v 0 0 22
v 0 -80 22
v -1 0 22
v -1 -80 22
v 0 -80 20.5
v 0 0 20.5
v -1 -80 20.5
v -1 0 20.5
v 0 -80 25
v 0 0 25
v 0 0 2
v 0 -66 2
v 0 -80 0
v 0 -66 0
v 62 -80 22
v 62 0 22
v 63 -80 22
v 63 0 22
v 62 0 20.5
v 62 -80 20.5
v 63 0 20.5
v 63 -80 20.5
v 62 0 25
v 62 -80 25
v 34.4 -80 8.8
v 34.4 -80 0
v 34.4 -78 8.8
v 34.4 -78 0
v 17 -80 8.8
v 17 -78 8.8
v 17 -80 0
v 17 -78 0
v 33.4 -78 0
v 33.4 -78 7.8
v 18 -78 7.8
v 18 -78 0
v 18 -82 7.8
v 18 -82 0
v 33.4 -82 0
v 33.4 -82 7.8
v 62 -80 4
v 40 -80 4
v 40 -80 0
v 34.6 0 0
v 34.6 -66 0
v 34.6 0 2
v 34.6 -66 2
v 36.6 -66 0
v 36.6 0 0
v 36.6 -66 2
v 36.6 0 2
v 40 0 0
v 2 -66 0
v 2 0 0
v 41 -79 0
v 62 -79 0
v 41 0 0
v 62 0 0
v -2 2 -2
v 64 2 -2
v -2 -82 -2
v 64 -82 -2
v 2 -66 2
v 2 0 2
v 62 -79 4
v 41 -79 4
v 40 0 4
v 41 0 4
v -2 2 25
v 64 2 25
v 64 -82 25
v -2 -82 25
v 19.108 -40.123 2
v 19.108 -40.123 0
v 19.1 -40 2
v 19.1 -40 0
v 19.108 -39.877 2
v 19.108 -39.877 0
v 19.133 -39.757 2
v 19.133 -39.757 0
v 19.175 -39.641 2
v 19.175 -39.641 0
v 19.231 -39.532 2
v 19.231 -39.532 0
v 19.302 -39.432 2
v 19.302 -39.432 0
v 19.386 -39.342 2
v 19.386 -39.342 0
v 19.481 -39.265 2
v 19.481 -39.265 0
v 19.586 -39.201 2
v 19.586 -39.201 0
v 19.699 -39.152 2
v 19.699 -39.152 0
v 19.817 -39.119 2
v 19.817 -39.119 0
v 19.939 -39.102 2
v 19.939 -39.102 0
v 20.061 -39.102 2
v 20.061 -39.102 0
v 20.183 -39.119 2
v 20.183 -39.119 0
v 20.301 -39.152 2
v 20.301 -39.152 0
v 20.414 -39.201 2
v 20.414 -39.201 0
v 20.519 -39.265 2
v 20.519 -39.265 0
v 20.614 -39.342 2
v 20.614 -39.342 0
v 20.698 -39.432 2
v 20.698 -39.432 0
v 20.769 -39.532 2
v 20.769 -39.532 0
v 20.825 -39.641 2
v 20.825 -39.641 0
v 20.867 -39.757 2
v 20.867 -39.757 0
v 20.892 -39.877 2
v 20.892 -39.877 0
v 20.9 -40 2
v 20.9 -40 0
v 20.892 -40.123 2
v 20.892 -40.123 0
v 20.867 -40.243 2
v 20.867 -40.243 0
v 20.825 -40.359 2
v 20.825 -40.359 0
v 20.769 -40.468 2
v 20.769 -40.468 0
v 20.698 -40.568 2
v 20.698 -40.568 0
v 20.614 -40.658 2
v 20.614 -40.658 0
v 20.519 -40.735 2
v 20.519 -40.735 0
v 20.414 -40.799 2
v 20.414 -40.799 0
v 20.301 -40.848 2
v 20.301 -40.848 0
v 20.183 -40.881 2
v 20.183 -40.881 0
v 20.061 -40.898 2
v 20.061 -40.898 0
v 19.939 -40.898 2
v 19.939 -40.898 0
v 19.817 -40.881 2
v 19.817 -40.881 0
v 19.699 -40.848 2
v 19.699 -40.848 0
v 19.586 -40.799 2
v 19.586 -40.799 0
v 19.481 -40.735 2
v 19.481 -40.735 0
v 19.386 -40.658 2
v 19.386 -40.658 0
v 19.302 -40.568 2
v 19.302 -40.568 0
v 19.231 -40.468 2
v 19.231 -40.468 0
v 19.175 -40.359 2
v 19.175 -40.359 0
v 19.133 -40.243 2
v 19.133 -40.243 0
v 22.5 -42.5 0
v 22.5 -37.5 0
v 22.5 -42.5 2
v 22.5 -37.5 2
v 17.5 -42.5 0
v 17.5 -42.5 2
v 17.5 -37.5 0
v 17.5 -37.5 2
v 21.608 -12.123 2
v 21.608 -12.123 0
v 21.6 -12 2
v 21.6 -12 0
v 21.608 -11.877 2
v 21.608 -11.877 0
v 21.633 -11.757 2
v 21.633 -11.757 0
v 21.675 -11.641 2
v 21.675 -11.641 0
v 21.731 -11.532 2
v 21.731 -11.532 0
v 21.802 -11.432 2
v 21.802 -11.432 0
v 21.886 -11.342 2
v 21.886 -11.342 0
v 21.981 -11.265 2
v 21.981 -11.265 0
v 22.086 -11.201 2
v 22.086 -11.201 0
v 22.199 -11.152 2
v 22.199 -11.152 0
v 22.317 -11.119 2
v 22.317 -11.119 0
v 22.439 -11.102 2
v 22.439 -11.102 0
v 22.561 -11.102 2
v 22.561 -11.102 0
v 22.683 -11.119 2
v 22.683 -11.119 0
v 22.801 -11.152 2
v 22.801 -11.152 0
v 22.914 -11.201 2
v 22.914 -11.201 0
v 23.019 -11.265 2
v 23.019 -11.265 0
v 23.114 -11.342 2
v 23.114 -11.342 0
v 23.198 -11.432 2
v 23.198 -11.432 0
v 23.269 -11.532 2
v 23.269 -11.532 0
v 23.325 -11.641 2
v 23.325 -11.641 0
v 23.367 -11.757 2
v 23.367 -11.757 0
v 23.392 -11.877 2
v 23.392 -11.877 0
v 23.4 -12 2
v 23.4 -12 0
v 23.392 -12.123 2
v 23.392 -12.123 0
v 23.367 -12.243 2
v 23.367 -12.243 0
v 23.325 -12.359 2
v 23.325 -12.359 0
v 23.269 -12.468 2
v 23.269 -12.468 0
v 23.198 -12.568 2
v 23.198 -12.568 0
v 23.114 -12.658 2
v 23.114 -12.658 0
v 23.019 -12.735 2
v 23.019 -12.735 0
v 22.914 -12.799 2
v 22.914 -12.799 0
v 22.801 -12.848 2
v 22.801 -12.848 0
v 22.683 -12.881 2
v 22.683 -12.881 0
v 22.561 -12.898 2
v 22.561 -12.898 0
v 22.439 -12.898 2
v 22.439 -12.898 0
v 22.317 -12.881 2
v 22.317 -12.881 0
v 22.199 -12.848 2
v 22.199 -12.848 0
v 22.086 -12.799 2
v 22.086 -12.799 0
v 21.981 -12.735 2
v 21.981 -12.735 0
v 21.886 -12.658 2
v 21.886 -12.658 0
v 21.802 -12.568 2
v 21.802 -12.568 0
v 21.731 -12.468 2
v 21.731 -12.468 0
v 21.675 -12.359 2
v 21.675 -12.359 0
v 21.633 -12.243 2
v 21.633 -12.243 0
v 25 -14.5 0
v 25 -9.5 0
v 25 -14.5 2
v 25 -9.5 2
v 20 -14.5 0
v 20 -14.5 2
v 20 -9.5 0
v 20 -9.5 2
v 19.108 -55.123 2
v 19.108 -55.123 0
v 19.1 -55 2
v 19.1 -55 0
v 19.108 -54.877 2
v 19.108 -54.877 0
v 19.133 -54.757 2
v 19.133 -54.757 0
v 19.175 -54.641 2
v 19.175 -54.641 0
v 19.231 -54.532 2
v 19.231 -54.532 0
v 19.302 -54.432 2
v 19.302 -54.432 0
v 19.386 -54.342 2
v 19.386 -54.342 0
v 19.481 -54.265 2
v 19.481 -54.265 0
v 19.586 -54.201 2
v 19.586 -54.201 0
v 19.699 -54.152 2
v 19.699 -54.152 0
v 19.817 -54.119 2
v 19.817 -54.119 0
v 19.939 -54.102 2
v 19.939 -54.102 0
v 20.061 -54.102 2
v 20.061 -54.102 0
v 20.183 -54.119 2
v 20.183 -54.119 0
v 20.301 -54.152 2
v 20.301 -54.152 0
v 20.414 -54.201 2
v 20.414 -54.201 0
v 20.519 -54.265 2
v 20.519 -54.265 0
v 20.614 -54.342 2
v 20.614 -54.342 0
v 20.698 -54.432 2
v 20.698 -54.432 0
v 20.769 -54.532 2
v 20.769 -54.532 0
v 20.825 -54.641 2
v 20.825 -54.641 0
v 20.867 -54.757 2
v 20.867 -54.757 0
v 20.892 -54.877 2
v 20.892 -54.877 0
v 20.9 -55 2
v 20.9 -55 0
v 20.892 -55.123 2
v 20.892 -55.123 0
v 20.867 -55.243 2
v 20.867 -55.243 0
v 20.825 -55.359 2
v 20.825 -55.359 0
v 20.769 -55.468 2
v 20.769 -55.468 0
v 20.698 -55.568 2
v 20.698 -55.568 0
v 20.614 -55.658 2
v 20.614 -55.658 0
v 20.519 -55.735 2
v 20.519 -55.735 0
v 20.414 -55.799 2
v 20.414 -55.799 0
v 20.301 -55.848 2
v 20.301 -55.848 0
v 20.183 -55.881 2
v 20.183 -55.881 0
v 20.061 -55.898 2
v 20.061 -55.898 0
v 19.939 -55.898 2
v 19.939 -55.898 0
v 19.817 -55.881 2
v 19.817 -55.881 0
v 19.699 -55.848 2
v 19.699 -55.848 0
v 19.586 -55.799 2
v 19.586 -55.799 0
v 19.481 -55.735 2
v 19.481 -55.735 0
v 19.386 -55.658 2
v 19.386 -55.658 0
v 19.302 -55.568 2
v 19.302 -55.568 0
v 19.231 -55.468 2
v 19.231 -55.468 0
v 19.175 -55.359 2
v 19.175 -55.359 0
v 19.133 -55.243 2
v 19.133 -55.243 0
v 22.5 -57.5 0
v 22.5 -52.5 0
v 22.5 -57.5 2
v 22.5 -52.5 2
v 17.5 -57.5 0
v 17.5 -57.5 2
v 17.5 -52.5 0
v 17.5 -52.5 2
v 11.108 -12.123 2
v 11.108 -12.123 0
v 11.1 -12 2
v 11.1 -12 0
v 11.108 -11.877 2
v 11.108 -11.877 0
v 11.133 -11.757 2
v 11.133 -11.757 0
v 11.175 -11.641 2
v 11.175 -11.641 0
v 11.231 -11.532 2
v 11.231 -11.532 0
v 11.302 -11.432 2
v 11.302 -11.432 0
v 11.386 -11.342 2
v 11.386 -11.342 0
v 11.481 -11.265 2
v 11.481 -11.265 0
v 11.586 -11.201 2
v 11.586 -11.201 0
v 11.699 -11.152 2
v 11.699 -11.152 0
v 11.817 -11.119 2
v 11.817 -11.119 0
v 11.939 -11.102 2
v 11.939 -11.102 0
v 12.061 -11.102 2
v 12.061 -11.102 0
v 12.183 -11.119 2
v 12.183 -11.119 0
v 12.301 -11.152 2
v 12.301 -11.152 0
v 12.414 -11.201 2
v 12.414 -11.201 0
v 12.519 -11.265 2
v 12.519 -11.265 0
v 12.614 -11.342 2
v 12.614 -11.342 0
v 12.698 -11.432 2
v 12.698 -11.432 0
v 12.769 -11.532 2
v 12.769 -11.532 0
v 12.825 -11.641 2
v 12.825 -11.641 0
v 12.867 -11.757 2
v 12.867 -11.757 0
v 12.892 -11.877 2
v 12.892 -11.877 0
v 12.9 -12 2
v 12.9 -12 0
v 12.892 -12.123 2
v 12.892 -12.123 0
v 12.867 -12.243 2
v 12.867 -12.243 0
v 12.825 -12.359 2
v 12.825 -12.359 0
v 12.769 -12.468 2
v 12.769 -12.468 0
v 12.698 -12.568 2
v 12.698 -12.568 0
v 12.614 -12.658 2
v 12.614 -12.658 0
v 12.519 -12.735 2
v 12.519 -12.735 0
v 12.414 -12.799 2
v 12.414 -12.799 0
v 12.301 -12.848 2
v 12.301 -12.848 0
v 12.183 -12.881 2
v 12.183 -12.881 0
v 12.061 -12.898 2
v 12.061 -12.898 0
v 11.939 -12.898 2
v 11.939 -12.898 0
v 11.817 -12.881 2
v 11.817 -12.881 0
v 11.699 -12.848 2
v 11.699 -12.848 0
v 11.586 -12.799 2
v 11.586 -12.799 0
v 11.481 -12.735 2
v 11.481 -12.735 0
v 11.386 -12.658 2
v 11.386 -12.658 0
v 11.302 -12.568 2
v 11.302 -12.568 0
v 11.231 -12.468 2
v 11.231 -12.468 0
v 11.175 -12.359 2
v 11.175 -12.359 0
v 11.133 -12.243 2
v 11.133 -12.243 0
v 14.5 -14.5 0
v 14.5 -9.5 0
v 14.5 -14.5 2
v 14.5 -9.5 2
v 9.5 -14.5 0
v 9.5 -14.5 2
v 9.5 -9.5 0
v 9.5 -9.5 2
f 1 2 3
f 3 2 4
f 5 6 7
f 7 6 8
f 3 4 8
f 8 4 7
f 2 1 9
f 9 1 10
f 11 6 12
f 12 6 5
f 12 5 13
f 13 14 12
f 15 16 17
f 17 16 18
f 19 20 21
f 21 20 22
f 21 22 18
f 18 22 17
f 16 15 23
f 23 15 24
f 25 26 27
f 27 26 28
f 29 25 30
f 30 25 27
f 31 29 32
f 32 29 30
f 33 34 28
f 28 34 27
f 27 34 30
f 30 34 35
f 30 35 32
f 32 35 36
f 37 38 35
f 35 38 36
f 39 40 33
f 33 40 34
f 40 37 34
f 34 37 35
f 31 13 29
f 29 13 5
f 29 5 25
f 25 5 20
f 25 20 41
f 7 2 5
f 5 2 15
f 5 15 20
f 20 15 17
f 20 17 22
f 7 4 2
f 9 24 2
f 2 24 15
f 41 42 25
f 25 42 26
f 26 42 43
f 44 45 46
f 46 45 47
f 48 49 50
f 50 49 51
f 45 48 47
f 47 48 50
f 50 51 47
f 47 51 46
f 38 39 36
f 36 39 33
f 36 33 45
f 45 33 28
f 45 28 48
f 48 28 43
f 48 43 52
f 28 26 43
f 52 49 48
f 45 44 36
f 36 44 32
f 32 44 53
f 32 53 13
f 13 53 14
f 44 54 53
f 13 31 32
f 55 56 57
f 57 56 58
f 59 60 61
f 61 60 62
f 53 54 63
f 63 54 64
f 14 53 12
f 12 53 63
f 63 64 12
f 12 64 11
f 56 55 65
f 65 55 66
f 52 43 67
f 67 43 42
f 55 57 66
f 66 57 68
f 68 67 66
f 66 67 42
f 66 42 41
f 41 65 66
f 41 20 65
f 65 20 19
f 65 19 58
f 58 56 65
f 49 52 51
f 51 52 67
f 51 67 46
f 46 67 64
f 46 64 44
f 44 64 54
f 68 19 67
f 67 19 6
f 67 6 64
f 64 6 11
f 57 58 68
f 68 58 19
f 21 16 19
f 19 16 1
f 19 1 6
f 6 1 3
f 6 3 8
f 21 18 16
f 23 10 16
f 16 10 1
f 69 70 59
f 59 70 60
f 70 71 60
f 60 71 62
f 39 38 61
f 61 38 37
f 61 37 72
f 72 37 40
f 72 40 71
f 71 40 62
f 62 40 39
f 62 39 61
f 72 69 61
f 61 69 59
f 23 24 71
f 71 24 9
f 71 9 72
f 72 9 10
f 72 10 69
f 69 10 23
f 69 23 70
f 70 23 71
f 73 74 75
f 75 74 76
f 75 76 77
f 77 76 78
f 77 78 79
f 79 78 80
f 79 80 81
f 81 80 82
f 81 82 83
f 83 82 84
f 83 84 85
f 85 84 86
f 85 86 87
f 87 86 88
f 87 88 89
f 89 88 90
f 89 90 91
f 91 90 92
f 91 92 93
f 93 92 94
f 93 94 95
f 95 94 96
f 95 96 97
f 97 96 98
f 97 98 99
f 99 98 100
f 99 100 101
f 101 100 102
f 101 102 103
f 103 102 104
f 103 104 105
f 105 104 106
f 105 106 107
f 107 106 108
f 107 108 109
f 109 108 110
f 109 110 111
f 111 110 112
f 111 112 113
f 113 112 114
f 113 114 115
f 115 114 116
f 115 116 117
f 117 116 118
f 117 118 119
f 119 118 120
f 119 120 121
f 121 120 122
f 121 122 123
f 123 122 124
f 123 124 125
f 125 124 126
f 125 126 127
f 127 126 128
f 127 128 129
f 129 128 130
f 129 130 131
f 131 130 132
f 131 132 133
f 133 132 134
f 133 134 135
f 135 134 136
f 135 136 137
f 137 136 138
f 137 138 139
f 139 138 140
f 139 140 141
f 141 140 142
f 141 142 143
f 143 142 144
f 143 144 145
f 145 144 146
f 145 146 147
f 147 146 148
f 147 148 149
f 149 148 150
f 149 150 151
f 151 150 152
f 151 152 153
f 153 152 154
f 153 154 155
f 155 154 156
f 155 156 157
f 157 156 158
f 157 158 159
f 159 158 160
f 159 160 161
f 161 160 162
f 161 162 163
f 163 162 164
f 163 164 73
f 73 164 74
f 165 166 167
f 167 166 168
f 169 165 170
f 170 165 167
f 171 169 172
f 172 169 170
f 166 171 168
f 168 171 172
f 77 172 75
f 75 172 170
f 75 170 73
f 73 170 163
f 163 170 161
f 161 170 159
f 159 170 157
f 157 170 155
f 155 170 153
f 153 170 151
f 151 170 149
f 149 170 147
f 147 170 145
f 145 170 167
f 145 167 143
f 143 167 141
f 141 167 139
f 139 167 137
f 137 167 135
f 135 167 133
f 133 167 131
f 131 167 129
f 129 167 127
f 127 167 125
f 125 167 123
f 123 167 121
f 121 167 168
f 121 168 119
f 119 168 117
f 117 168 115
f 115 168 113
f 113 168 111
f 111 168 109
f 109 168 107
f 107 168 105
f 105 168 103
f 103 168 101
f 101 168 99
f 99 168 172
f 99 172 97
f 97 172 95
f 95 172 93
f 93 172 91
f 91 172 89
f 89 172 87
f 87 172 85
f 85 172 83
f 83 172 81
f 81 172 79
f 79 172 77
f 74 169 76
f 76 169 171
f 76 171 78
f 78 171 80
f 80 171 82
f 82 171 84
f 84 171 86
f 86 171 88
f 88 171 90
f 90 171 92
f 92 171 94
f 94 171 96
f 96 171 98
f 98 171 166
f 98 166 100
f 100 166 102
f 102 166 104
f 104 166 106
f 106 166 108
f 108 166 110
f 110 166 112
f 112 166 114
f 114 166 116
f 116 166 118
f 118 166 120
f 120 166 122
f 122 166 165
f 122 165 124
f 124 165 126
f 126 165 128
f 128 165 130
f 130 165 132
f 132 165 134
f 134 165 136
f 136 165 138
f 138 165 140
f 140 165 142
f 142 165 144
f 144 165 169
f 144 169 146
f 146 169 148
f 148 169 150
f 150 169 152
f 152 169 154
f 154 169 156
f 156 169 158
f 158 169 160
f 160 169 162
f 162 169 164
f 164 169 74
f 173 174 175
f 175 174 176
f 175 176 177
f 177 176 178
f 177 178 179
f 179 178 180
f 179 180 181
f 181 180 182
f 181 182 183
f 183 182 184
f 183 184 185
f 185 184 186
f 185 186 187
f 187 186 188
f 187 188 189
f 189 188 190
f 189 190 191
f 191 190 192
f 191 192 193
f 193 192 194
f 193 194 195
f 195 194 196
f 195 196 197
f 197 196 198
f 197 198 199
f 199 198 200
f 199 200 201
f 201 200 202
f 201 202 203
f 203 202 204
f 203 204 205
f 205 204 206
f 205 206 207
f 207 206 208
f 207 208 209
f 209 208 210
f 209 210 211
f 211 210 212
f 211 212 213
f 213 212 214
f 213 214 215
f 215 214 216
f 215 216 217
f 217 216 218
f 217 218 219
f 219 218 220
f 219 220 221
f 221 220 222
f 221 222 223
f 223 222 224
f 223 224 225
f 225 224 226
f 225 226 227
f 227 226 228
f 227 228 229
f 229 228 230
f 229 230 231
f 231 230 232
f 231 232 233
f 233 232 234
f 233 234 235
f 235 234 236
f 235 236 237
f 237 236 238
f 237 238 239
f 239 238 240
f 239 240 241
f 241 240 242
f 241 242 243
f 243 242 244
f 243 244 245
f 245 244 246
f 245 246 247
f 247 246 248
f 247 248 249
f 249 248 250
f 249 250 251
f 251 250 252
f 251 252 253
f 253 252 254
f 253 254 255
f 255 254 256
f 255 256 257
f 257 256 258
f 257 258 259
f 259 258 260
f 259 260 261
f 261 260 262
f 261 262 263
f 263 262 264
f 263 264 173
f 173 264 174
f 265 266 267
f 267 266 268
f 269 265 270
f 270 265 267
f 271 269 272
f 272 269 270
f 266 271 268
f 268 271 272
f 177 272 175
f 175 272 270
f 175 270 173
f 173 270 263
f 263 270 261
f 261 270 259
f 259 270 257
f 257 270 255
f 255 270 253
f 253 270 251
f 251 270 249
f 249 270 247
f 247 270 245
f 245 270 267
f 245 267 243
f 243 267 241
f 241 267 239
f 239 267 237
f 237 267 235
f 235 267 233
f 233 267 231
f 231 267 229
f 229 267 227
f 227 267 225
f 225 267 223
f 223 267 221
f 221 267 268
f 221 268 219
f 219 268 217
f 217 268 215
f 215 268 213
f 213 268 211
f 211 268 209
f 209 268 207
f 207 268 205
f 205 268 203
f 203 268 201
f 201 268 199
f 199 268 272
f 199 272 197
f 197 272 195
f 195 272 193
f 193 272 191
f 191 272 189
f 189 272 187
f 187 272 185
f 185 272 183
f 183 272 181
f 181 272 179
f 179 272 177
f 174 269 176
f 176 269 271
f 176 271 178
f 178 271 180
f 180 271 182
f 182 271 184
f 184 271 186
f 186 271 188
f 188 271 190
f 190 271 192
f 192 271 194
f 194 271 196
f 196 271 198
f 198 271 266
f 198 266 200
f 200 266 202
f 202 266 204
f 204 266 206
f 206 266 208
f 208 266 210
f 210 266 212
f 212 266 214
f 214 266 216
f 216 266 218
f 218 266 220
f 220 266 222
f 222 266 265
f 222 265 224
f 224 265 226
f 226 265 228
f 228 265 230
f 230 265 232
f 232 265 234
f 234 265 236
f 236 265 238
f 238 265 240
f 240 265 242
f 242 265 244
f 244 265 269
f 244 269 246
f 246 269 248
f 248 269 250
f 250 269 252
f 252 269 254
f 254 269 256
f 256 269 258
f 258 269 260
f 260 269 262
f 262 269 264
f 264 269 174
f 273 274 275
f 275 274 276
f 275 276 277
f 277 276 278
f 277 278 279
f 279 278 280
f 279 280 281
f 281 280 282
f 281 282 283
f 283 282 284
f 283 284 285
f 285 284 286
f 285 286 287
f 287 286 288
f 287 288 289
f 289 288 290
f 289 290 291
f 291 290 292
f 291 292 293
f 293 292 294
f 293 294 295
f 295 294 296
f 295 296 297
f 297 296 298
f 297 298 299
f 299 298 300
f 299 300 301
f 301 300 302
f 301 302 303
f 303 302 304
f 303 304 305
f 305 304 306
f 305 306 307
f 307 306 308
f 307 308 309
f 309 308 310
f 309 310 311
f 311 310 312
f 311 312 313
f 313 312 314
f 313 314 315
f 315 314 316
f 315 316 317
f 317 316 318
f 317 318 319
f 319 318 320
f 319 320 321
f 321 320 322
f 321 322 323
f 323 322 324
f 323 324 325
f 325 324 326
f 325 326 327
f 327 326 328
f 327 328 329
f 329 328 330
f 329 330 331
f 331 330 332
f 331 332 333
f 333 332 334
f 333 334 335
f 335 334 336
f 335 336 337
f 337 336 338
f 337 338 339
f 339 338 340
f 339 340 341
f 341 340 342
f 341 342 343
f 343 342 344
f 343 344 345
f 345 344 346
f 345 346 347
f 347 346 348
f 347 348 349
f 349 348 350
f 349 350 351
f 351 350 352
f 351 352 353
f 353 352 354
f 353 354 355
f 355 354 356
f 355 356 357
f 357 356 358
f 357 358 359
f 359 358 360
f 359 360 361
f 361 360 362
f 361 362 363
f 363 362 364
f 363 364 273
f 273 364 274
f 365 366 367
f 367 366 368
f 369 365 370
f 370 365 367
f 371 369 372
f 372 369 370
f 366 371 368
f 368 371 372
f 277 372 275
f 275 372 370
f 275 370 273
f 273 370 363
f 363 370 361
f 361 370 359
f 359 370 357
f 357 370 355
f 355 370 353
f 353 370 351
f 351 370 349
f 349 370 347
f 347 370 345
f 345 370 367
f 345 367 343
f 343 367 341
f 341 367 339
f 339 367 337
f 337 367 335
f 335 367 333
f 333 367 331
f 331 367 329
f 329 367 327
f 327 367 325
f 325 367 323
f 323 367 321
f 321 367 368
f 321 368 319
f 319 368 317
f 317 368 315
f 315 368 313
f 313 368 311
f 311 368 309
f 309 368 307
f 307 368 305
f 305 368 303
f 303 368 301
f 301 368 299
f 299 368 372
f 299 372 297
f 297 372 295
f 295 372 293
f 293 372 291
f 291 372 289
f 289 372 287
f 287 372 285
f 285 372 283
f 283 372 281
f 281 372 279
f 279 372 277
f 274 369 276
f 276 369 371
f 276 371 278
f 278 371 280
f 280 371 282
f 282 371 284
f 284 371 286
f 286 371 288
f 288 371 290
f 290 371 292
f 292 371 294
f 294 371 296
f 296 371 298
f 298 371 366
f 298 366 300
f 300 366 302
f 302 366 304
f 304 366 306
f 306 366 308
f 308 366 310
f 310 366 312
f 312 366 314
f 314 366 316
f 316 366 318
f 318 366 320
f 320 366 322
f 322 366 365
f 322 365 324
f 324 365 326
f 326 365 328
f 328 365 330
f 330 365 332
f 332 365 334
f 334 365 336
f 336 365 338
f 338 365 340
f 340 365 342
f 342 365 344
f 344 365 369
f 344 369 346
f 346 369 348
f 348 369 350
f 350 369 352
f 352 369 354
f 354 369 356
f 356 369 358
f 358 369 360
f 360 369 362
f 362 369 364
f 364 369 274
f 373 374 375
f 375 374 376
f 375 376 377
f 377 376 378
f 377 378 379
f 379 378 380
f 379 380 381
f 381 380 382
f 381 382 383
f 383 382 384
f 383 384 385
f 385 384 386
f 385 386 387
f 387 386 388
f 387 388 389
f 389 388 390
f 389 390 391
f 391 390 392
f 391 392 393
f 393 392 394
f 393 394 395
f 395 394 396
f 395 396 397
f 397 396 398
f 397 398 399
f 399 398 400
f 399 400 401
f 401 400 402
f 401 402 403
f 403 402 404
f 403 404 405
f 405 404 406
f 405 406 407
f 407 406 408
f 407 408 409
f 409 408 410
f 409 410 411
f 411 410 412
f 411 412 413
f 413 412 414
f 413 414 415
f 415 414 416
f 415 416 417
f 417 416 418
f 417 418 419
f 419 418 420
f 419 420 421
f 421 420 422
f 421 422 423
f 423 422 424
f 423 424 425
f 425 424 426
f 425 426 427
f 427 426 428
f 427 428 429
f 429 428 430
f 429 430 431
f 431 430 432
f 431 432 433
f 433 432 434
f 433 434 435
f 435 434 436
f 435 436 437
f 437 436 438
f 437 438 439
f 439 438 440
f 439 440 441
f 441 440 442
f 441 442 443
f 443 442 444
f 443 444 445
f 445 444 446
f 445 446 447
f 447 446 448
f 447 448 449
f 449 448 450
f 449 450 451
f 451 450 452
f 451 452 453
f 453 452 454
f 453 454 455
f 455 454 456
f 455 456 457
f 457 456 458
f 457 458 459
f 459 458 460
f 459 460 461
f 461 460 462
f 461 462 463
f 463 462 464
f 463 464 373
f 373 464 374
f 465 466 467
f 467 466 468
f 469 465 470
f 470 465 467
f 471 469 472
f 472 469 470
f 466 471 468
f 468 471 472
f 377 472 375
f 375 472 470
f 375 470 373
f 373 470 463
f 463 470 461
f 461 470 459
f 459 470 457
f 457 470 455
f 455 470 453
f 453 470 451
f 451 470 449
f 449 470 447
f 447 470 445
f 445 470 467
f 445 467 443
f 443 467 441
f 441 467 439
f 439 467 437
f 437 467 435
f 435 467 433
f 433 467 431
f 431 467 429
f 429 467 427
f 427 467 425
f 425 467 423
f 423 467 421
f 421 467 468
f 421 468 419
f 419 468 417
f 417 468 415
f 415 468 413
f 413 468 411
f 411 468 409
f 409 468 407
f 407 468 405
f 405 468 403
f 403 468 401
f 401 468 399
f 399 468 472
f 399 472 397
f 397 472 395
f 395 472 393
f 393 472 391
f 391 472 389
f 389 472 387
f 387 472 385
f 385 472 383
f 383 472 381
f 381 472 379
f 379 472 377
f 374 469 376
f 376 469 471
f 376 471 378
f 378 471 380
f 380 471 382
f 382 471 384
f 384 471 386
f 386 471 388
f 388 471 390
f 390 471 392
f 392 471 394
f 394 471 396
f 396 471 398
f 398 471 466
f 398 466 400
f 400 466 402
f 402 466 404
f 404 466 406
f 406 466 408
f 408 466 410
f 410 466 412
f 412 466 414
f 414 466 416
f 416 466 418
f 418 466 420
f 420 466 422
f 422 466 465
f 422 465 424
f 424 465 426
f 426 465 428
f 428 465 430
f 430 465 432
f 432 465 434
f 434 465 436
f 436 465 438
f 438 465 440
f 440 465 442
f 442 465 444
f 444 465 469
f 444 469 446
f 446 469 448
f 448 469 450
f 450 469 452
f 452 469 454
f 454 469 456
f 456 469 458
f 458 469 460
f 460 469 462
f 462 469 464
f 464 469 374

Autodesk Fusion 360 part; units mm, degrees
sketch "Skizze1" plane through (0, 0, 0) normal (0, 0, 1) x (1, 0, 0)
  line L0 (0, 0) -> (62, 0)
  line L1 (62, 0) -> (62, -80)
  line L2 (62, -80) -> (0, -80)
  line L3 (0, -80) -> (0, 0)
  line L4 (64, -82) -> (-2, -82)
  line L5 (-2, -82) -> (-2, 2)
  line L6 (-2, 2) -> (64, 2)
  line L7 (64, 2) -> (64, -82)
  line L8 (41, -79) -> (62, -79)
  line L9 (41, -80) -> (41, 0)
  line L10 (40, 0) -> (40, -80)
  line L11 (14.5, -14.5) -> (9.5, -14.5)
  line L12 (9.5, -14.5) -> (9.5, -9.5)
  line L13 (9.5, -9.5) -> (14.5, -9.5)
  line L14 (14.5, -9.5) -> (14.5, -14.5)
  line L15 (14.5, -14.5) -> (9.5, -9.5) construction
  line L16 (9.5, -14.5) -> (14.5, -9.5) construction
  line L17 (25, -14.5) -> (20, -14.5)
  line L18 (20, -14.5) -> (20, -9.5)
  line L19 (20, -9.5) -> (25, -9.5)
  line L20 (25, -9.5) -> (25, -14.5)
  line L21 (25, -14.5) -> (20, -9.5) construction
  line L22 (20, -14.5) -> (25, -9.5) construction
  line L23 (22.5, -42.5) -> (17.5, -42.5)
  line L24 (17.5, -42.5) -> (17.5, -37.5)
  line L25 (17.5, -37.5) -> (22.5, -37.5)
  line L26 (22.5, -37.5) -> (22.5, -42.5)
  line L27 (22.5, -42.5) -> (17.5, -37.5) construction
  line L28 (17.5, -42.5) -> (22.5, -37.5) construction
  line L29 (22.5, -57.5) -> (17.5, -57.5)
  line L30 (17.5, -57.5) -> (17.5, -52.5)
  line L31 (17.5, -52.5) -> (22.5, -52.5)
  line L32 (22.5, -52.5) -> (22.5, -57.5)
  line L33 (22.5, -57.5) -> (17.5, -52.5) construction
  line L34 (17.5, -57.5) -> (22.5, -52.5) construction
  line L35 (-2, -82) -> (64, -82)
  line L36 (64, -82) -> (64, 2)
  line L37 (64, 2) -> (-2, 2)
  line L38 (-2, 2) -> (-2, -82)
  circle A0 centre (12, -12) radius 0.9
  circle A1 centre (22.5, -12) radius 0.9
  circle A2 centre (20, -40) radius 0.9
  circle A3 centre (20, -55) radius 0.9
  point P0 (12, -12)
  point P1 (22.5, -12)
  point P2 (20, -40)
  point P3 (20, -55)
  dimension "d1" = 62
  dimension "d2" = 80
  dimension "d3" = -2
  dimension "d6" = 79
  dimension "d7" = 21
  dimension "d8" = 1
  dimension "d9" = 5
  dimension "d10" = 5
  dimension "d11" = 12
  dimension "d12" = 12
  dimension "d13" = 5
  dimension "d14" = 5
  dimension "d15" = 12
  dimension "d16" = 10.5
  dimension "d17" = 5
  dimension "d18" = 5
  dimension "d19" = 20
  dimension "d20" = 40
  dimension "d21" = 5
  dimension "d22" = 5
  dimension "d23" = 20
  dimension "d24" = 15
  dimension "d44" = 1.8
  dimension "d45" = 1.8
  dimension "d46" = 1.8
  dimension "d47" = 1.8
extrude "Extrusion2" add sketch "Skizze1" along normal blind 25 contours L4 L5 L6 L7 L35 L36 L37 L38 makes body 1
extrude "Extrusion3" add sketch "Skizze1" along normal blind 2 separate body contours L11 L12 L13 L14 | L17 L18 L19 L20 | L23 L24 L25 L26 | L29 L30 L31 L32 makes body 2 at (19.9776, -41.9658, 0) makes body 3 at (22.5224, -10.0342, 0) makes body 4 at (20.0224, -56.9658, 0) makes body 5 at (11.9776, -10.0342, 0)
extrude "Extrusion4" add sketch "Skizze1" along normal blind 4 contours L0 L2 L9 L10 | L1 L2 L8 L9 bodies 1
extrude "Extrusion6" add sketch "Skizze1" against normal blind 2 separate body contours L0 L2 L3 L10 | L0 L2 L9 L10 | L0 L1 L8 L9 | L1 L2 L8 L9 | L4 L5 L6 L7 L35 L36 L37 L38 | L11 L12 L13 L14 | L17 L18 L19 L20 | L23 L24 L25 L26 | L29 L30 L31 L32 | A0 | A1 | A2 | A3 makes body 6
sketch "Skizze2" plane through (0, 0, 0) normal (0, 0, 1) x (-1, 0, 0)
  line L0 (2, -2) -> (2, 82)
  line L1 (2, 82) -> (-64, 82)
  line L2 (-64, 82) -> (-64, -2)
  line L3 (-64, -2) -> (2, -2)
  line L4 (0, 0) -> (-2, 0)
  line L5 (-2, 0) -> (-2, 66)
  line L6 (-2, 66) -> (0, 66)
  line L7 (0, 66) -> (0, 0)
  line L8 (-34.6, 0) -> (-36.6, 0)
  line L9 (-36.6, 0) -> (-36.6, 66)
  line L10 (-36.6, 66) -> (-34.6, 66)
  line L11 (-34.6, 66) -> (-34.6, 0)
  dimension "d37" = 66
  dimension "d38" = 2
  dimension "d39" = 66
  dimension "d40" = 36.6
  dimension "d41" = 2
extrude "Extrusion7" add sketch "Skizze2" along normal blind 2 contours L4 L5 L6 L7 | L8 L9 L10 L11 bodies 1 6
sketch "Skizze4" plane through (0, -82, 0) normal (0, -1, 0) x (1, 0, 0)
  line L0 (64, -2) -> (64, 25)
  line L1 (64, 25) -> (-2, 25)
  line L2 (-2, 25) -> (-2, -2)
  line L3 (-2, -2) -> (64, -2)
  line L4 (18, 7.8) -> (33.4, 7.8)
  line L5 (33.4, 7.8) -> (33.4, 0)
  line L6 (33.4, 0) -> (18, 0)
  line L7 (18, 0) -> (18, 7.8)
  dimension "d53" = 15.4
  dimension "d54" = 7.8
  dimension "d55" = 20
  dimension "d56" = 2
extrude "Extrusion9" cut sketch "Skizze4" against normal up to surface (2 mm away) contours L4 L5 L6 L7 bodies 1
sketch "Skizze5" plane through (0, -80, 0) normal (0, 1, 0) x (-1, 0, 0)
  line L0 (-33.4, 0) -> (-33.4, 7.8)
  line L1 (-33.4, 7.8) -> (-18, 7.8)
  line L2 (-18, 7.8) -> (-18, 0)
  line L3 (-18, 0) -> (0, 0)
  line L4 (0, 0) -> (0, 25)
  line L5 (0, 25) -> (-62, 25)
  line L6 (-62, 25) -> (-62, 4)
  line L7 (-62, 4) -> (-40, 4)
  line L8 (-40, 4) -> (-40, 0)
  line L9 (-40, 0) -> (-33.4, 0)
  line L10 (-34.4, 0) -> (-34.4, 8.8)
  line L11 (-34.4, 8.8) -> (-17, 8.8)
  line L12 (-17, 8.8) -> (-17, 0)
  dimension "d59" = -1
extrude "Extrusion10" add sketch "Skizze5" along normal blind 2 contours L0 L1 L2 L3 L9 L10 L11 L12 bodies 1
sketch "Skizze6" plane through (62, 0, 0) normal (-1, 0, 0) x (0, -1, 0)
  line L0 (79, 0) -> (79, 4)
  line L1 (79, 4) -> (80, 4)
  line L2 (80, 4) -> (80, 25)
  line L3 (80, 25) -> (0, 25)
  line L4 (0, 25) -> (0, 0)
  line L5 (0, 0) -> (79, 0)
  line L6 (0, 22) -> (80, 22)
  line L7 (80, 22) -> (80, 20.5)
  line L8 (80, 20.5) -> (0, 20.5)
  line L9 (0, 20.5) -> (0, 22)
  dimension "d62" = 1.5
  dimension "d63" = 3
extrude "Extrusion11" cut sketch "Skizze6" against normal blind 1 contours L2 L4 L6 L7 L8 L9 bodies 1
sketch "Skizze7" plane through (0, 0, 0) normal (1, 0, 0) x (0, 1, 0)
  line L0 (-66, 0) -> (-66, 2)
  line L1 (-66, 2) -> (0, 2)
  line L2 (0, 2) -> (0, 25)
  line L3 (0, 25) -> (-80, 25)
  line L4 (-80, 25) -> (-80, 0)
  line L5 (-80, 0) -> (-66, 0)
  line L6 (0, 22) -> (-80, 22)
  line L7 (-80, 22) -> (-80, 20.5)
  line L8 (-80, 20.5) -> (0, 20.5)
  line L9 (0, 20.5) -> (0, 22)
  dimension "d66" = 1.5
  dimension "d67" = 3
extrude "Extrusion12" cut sketch "Skizze7" against normal blind 1 contours L2 L4 L6 L7 L8 L9 bodies 1
